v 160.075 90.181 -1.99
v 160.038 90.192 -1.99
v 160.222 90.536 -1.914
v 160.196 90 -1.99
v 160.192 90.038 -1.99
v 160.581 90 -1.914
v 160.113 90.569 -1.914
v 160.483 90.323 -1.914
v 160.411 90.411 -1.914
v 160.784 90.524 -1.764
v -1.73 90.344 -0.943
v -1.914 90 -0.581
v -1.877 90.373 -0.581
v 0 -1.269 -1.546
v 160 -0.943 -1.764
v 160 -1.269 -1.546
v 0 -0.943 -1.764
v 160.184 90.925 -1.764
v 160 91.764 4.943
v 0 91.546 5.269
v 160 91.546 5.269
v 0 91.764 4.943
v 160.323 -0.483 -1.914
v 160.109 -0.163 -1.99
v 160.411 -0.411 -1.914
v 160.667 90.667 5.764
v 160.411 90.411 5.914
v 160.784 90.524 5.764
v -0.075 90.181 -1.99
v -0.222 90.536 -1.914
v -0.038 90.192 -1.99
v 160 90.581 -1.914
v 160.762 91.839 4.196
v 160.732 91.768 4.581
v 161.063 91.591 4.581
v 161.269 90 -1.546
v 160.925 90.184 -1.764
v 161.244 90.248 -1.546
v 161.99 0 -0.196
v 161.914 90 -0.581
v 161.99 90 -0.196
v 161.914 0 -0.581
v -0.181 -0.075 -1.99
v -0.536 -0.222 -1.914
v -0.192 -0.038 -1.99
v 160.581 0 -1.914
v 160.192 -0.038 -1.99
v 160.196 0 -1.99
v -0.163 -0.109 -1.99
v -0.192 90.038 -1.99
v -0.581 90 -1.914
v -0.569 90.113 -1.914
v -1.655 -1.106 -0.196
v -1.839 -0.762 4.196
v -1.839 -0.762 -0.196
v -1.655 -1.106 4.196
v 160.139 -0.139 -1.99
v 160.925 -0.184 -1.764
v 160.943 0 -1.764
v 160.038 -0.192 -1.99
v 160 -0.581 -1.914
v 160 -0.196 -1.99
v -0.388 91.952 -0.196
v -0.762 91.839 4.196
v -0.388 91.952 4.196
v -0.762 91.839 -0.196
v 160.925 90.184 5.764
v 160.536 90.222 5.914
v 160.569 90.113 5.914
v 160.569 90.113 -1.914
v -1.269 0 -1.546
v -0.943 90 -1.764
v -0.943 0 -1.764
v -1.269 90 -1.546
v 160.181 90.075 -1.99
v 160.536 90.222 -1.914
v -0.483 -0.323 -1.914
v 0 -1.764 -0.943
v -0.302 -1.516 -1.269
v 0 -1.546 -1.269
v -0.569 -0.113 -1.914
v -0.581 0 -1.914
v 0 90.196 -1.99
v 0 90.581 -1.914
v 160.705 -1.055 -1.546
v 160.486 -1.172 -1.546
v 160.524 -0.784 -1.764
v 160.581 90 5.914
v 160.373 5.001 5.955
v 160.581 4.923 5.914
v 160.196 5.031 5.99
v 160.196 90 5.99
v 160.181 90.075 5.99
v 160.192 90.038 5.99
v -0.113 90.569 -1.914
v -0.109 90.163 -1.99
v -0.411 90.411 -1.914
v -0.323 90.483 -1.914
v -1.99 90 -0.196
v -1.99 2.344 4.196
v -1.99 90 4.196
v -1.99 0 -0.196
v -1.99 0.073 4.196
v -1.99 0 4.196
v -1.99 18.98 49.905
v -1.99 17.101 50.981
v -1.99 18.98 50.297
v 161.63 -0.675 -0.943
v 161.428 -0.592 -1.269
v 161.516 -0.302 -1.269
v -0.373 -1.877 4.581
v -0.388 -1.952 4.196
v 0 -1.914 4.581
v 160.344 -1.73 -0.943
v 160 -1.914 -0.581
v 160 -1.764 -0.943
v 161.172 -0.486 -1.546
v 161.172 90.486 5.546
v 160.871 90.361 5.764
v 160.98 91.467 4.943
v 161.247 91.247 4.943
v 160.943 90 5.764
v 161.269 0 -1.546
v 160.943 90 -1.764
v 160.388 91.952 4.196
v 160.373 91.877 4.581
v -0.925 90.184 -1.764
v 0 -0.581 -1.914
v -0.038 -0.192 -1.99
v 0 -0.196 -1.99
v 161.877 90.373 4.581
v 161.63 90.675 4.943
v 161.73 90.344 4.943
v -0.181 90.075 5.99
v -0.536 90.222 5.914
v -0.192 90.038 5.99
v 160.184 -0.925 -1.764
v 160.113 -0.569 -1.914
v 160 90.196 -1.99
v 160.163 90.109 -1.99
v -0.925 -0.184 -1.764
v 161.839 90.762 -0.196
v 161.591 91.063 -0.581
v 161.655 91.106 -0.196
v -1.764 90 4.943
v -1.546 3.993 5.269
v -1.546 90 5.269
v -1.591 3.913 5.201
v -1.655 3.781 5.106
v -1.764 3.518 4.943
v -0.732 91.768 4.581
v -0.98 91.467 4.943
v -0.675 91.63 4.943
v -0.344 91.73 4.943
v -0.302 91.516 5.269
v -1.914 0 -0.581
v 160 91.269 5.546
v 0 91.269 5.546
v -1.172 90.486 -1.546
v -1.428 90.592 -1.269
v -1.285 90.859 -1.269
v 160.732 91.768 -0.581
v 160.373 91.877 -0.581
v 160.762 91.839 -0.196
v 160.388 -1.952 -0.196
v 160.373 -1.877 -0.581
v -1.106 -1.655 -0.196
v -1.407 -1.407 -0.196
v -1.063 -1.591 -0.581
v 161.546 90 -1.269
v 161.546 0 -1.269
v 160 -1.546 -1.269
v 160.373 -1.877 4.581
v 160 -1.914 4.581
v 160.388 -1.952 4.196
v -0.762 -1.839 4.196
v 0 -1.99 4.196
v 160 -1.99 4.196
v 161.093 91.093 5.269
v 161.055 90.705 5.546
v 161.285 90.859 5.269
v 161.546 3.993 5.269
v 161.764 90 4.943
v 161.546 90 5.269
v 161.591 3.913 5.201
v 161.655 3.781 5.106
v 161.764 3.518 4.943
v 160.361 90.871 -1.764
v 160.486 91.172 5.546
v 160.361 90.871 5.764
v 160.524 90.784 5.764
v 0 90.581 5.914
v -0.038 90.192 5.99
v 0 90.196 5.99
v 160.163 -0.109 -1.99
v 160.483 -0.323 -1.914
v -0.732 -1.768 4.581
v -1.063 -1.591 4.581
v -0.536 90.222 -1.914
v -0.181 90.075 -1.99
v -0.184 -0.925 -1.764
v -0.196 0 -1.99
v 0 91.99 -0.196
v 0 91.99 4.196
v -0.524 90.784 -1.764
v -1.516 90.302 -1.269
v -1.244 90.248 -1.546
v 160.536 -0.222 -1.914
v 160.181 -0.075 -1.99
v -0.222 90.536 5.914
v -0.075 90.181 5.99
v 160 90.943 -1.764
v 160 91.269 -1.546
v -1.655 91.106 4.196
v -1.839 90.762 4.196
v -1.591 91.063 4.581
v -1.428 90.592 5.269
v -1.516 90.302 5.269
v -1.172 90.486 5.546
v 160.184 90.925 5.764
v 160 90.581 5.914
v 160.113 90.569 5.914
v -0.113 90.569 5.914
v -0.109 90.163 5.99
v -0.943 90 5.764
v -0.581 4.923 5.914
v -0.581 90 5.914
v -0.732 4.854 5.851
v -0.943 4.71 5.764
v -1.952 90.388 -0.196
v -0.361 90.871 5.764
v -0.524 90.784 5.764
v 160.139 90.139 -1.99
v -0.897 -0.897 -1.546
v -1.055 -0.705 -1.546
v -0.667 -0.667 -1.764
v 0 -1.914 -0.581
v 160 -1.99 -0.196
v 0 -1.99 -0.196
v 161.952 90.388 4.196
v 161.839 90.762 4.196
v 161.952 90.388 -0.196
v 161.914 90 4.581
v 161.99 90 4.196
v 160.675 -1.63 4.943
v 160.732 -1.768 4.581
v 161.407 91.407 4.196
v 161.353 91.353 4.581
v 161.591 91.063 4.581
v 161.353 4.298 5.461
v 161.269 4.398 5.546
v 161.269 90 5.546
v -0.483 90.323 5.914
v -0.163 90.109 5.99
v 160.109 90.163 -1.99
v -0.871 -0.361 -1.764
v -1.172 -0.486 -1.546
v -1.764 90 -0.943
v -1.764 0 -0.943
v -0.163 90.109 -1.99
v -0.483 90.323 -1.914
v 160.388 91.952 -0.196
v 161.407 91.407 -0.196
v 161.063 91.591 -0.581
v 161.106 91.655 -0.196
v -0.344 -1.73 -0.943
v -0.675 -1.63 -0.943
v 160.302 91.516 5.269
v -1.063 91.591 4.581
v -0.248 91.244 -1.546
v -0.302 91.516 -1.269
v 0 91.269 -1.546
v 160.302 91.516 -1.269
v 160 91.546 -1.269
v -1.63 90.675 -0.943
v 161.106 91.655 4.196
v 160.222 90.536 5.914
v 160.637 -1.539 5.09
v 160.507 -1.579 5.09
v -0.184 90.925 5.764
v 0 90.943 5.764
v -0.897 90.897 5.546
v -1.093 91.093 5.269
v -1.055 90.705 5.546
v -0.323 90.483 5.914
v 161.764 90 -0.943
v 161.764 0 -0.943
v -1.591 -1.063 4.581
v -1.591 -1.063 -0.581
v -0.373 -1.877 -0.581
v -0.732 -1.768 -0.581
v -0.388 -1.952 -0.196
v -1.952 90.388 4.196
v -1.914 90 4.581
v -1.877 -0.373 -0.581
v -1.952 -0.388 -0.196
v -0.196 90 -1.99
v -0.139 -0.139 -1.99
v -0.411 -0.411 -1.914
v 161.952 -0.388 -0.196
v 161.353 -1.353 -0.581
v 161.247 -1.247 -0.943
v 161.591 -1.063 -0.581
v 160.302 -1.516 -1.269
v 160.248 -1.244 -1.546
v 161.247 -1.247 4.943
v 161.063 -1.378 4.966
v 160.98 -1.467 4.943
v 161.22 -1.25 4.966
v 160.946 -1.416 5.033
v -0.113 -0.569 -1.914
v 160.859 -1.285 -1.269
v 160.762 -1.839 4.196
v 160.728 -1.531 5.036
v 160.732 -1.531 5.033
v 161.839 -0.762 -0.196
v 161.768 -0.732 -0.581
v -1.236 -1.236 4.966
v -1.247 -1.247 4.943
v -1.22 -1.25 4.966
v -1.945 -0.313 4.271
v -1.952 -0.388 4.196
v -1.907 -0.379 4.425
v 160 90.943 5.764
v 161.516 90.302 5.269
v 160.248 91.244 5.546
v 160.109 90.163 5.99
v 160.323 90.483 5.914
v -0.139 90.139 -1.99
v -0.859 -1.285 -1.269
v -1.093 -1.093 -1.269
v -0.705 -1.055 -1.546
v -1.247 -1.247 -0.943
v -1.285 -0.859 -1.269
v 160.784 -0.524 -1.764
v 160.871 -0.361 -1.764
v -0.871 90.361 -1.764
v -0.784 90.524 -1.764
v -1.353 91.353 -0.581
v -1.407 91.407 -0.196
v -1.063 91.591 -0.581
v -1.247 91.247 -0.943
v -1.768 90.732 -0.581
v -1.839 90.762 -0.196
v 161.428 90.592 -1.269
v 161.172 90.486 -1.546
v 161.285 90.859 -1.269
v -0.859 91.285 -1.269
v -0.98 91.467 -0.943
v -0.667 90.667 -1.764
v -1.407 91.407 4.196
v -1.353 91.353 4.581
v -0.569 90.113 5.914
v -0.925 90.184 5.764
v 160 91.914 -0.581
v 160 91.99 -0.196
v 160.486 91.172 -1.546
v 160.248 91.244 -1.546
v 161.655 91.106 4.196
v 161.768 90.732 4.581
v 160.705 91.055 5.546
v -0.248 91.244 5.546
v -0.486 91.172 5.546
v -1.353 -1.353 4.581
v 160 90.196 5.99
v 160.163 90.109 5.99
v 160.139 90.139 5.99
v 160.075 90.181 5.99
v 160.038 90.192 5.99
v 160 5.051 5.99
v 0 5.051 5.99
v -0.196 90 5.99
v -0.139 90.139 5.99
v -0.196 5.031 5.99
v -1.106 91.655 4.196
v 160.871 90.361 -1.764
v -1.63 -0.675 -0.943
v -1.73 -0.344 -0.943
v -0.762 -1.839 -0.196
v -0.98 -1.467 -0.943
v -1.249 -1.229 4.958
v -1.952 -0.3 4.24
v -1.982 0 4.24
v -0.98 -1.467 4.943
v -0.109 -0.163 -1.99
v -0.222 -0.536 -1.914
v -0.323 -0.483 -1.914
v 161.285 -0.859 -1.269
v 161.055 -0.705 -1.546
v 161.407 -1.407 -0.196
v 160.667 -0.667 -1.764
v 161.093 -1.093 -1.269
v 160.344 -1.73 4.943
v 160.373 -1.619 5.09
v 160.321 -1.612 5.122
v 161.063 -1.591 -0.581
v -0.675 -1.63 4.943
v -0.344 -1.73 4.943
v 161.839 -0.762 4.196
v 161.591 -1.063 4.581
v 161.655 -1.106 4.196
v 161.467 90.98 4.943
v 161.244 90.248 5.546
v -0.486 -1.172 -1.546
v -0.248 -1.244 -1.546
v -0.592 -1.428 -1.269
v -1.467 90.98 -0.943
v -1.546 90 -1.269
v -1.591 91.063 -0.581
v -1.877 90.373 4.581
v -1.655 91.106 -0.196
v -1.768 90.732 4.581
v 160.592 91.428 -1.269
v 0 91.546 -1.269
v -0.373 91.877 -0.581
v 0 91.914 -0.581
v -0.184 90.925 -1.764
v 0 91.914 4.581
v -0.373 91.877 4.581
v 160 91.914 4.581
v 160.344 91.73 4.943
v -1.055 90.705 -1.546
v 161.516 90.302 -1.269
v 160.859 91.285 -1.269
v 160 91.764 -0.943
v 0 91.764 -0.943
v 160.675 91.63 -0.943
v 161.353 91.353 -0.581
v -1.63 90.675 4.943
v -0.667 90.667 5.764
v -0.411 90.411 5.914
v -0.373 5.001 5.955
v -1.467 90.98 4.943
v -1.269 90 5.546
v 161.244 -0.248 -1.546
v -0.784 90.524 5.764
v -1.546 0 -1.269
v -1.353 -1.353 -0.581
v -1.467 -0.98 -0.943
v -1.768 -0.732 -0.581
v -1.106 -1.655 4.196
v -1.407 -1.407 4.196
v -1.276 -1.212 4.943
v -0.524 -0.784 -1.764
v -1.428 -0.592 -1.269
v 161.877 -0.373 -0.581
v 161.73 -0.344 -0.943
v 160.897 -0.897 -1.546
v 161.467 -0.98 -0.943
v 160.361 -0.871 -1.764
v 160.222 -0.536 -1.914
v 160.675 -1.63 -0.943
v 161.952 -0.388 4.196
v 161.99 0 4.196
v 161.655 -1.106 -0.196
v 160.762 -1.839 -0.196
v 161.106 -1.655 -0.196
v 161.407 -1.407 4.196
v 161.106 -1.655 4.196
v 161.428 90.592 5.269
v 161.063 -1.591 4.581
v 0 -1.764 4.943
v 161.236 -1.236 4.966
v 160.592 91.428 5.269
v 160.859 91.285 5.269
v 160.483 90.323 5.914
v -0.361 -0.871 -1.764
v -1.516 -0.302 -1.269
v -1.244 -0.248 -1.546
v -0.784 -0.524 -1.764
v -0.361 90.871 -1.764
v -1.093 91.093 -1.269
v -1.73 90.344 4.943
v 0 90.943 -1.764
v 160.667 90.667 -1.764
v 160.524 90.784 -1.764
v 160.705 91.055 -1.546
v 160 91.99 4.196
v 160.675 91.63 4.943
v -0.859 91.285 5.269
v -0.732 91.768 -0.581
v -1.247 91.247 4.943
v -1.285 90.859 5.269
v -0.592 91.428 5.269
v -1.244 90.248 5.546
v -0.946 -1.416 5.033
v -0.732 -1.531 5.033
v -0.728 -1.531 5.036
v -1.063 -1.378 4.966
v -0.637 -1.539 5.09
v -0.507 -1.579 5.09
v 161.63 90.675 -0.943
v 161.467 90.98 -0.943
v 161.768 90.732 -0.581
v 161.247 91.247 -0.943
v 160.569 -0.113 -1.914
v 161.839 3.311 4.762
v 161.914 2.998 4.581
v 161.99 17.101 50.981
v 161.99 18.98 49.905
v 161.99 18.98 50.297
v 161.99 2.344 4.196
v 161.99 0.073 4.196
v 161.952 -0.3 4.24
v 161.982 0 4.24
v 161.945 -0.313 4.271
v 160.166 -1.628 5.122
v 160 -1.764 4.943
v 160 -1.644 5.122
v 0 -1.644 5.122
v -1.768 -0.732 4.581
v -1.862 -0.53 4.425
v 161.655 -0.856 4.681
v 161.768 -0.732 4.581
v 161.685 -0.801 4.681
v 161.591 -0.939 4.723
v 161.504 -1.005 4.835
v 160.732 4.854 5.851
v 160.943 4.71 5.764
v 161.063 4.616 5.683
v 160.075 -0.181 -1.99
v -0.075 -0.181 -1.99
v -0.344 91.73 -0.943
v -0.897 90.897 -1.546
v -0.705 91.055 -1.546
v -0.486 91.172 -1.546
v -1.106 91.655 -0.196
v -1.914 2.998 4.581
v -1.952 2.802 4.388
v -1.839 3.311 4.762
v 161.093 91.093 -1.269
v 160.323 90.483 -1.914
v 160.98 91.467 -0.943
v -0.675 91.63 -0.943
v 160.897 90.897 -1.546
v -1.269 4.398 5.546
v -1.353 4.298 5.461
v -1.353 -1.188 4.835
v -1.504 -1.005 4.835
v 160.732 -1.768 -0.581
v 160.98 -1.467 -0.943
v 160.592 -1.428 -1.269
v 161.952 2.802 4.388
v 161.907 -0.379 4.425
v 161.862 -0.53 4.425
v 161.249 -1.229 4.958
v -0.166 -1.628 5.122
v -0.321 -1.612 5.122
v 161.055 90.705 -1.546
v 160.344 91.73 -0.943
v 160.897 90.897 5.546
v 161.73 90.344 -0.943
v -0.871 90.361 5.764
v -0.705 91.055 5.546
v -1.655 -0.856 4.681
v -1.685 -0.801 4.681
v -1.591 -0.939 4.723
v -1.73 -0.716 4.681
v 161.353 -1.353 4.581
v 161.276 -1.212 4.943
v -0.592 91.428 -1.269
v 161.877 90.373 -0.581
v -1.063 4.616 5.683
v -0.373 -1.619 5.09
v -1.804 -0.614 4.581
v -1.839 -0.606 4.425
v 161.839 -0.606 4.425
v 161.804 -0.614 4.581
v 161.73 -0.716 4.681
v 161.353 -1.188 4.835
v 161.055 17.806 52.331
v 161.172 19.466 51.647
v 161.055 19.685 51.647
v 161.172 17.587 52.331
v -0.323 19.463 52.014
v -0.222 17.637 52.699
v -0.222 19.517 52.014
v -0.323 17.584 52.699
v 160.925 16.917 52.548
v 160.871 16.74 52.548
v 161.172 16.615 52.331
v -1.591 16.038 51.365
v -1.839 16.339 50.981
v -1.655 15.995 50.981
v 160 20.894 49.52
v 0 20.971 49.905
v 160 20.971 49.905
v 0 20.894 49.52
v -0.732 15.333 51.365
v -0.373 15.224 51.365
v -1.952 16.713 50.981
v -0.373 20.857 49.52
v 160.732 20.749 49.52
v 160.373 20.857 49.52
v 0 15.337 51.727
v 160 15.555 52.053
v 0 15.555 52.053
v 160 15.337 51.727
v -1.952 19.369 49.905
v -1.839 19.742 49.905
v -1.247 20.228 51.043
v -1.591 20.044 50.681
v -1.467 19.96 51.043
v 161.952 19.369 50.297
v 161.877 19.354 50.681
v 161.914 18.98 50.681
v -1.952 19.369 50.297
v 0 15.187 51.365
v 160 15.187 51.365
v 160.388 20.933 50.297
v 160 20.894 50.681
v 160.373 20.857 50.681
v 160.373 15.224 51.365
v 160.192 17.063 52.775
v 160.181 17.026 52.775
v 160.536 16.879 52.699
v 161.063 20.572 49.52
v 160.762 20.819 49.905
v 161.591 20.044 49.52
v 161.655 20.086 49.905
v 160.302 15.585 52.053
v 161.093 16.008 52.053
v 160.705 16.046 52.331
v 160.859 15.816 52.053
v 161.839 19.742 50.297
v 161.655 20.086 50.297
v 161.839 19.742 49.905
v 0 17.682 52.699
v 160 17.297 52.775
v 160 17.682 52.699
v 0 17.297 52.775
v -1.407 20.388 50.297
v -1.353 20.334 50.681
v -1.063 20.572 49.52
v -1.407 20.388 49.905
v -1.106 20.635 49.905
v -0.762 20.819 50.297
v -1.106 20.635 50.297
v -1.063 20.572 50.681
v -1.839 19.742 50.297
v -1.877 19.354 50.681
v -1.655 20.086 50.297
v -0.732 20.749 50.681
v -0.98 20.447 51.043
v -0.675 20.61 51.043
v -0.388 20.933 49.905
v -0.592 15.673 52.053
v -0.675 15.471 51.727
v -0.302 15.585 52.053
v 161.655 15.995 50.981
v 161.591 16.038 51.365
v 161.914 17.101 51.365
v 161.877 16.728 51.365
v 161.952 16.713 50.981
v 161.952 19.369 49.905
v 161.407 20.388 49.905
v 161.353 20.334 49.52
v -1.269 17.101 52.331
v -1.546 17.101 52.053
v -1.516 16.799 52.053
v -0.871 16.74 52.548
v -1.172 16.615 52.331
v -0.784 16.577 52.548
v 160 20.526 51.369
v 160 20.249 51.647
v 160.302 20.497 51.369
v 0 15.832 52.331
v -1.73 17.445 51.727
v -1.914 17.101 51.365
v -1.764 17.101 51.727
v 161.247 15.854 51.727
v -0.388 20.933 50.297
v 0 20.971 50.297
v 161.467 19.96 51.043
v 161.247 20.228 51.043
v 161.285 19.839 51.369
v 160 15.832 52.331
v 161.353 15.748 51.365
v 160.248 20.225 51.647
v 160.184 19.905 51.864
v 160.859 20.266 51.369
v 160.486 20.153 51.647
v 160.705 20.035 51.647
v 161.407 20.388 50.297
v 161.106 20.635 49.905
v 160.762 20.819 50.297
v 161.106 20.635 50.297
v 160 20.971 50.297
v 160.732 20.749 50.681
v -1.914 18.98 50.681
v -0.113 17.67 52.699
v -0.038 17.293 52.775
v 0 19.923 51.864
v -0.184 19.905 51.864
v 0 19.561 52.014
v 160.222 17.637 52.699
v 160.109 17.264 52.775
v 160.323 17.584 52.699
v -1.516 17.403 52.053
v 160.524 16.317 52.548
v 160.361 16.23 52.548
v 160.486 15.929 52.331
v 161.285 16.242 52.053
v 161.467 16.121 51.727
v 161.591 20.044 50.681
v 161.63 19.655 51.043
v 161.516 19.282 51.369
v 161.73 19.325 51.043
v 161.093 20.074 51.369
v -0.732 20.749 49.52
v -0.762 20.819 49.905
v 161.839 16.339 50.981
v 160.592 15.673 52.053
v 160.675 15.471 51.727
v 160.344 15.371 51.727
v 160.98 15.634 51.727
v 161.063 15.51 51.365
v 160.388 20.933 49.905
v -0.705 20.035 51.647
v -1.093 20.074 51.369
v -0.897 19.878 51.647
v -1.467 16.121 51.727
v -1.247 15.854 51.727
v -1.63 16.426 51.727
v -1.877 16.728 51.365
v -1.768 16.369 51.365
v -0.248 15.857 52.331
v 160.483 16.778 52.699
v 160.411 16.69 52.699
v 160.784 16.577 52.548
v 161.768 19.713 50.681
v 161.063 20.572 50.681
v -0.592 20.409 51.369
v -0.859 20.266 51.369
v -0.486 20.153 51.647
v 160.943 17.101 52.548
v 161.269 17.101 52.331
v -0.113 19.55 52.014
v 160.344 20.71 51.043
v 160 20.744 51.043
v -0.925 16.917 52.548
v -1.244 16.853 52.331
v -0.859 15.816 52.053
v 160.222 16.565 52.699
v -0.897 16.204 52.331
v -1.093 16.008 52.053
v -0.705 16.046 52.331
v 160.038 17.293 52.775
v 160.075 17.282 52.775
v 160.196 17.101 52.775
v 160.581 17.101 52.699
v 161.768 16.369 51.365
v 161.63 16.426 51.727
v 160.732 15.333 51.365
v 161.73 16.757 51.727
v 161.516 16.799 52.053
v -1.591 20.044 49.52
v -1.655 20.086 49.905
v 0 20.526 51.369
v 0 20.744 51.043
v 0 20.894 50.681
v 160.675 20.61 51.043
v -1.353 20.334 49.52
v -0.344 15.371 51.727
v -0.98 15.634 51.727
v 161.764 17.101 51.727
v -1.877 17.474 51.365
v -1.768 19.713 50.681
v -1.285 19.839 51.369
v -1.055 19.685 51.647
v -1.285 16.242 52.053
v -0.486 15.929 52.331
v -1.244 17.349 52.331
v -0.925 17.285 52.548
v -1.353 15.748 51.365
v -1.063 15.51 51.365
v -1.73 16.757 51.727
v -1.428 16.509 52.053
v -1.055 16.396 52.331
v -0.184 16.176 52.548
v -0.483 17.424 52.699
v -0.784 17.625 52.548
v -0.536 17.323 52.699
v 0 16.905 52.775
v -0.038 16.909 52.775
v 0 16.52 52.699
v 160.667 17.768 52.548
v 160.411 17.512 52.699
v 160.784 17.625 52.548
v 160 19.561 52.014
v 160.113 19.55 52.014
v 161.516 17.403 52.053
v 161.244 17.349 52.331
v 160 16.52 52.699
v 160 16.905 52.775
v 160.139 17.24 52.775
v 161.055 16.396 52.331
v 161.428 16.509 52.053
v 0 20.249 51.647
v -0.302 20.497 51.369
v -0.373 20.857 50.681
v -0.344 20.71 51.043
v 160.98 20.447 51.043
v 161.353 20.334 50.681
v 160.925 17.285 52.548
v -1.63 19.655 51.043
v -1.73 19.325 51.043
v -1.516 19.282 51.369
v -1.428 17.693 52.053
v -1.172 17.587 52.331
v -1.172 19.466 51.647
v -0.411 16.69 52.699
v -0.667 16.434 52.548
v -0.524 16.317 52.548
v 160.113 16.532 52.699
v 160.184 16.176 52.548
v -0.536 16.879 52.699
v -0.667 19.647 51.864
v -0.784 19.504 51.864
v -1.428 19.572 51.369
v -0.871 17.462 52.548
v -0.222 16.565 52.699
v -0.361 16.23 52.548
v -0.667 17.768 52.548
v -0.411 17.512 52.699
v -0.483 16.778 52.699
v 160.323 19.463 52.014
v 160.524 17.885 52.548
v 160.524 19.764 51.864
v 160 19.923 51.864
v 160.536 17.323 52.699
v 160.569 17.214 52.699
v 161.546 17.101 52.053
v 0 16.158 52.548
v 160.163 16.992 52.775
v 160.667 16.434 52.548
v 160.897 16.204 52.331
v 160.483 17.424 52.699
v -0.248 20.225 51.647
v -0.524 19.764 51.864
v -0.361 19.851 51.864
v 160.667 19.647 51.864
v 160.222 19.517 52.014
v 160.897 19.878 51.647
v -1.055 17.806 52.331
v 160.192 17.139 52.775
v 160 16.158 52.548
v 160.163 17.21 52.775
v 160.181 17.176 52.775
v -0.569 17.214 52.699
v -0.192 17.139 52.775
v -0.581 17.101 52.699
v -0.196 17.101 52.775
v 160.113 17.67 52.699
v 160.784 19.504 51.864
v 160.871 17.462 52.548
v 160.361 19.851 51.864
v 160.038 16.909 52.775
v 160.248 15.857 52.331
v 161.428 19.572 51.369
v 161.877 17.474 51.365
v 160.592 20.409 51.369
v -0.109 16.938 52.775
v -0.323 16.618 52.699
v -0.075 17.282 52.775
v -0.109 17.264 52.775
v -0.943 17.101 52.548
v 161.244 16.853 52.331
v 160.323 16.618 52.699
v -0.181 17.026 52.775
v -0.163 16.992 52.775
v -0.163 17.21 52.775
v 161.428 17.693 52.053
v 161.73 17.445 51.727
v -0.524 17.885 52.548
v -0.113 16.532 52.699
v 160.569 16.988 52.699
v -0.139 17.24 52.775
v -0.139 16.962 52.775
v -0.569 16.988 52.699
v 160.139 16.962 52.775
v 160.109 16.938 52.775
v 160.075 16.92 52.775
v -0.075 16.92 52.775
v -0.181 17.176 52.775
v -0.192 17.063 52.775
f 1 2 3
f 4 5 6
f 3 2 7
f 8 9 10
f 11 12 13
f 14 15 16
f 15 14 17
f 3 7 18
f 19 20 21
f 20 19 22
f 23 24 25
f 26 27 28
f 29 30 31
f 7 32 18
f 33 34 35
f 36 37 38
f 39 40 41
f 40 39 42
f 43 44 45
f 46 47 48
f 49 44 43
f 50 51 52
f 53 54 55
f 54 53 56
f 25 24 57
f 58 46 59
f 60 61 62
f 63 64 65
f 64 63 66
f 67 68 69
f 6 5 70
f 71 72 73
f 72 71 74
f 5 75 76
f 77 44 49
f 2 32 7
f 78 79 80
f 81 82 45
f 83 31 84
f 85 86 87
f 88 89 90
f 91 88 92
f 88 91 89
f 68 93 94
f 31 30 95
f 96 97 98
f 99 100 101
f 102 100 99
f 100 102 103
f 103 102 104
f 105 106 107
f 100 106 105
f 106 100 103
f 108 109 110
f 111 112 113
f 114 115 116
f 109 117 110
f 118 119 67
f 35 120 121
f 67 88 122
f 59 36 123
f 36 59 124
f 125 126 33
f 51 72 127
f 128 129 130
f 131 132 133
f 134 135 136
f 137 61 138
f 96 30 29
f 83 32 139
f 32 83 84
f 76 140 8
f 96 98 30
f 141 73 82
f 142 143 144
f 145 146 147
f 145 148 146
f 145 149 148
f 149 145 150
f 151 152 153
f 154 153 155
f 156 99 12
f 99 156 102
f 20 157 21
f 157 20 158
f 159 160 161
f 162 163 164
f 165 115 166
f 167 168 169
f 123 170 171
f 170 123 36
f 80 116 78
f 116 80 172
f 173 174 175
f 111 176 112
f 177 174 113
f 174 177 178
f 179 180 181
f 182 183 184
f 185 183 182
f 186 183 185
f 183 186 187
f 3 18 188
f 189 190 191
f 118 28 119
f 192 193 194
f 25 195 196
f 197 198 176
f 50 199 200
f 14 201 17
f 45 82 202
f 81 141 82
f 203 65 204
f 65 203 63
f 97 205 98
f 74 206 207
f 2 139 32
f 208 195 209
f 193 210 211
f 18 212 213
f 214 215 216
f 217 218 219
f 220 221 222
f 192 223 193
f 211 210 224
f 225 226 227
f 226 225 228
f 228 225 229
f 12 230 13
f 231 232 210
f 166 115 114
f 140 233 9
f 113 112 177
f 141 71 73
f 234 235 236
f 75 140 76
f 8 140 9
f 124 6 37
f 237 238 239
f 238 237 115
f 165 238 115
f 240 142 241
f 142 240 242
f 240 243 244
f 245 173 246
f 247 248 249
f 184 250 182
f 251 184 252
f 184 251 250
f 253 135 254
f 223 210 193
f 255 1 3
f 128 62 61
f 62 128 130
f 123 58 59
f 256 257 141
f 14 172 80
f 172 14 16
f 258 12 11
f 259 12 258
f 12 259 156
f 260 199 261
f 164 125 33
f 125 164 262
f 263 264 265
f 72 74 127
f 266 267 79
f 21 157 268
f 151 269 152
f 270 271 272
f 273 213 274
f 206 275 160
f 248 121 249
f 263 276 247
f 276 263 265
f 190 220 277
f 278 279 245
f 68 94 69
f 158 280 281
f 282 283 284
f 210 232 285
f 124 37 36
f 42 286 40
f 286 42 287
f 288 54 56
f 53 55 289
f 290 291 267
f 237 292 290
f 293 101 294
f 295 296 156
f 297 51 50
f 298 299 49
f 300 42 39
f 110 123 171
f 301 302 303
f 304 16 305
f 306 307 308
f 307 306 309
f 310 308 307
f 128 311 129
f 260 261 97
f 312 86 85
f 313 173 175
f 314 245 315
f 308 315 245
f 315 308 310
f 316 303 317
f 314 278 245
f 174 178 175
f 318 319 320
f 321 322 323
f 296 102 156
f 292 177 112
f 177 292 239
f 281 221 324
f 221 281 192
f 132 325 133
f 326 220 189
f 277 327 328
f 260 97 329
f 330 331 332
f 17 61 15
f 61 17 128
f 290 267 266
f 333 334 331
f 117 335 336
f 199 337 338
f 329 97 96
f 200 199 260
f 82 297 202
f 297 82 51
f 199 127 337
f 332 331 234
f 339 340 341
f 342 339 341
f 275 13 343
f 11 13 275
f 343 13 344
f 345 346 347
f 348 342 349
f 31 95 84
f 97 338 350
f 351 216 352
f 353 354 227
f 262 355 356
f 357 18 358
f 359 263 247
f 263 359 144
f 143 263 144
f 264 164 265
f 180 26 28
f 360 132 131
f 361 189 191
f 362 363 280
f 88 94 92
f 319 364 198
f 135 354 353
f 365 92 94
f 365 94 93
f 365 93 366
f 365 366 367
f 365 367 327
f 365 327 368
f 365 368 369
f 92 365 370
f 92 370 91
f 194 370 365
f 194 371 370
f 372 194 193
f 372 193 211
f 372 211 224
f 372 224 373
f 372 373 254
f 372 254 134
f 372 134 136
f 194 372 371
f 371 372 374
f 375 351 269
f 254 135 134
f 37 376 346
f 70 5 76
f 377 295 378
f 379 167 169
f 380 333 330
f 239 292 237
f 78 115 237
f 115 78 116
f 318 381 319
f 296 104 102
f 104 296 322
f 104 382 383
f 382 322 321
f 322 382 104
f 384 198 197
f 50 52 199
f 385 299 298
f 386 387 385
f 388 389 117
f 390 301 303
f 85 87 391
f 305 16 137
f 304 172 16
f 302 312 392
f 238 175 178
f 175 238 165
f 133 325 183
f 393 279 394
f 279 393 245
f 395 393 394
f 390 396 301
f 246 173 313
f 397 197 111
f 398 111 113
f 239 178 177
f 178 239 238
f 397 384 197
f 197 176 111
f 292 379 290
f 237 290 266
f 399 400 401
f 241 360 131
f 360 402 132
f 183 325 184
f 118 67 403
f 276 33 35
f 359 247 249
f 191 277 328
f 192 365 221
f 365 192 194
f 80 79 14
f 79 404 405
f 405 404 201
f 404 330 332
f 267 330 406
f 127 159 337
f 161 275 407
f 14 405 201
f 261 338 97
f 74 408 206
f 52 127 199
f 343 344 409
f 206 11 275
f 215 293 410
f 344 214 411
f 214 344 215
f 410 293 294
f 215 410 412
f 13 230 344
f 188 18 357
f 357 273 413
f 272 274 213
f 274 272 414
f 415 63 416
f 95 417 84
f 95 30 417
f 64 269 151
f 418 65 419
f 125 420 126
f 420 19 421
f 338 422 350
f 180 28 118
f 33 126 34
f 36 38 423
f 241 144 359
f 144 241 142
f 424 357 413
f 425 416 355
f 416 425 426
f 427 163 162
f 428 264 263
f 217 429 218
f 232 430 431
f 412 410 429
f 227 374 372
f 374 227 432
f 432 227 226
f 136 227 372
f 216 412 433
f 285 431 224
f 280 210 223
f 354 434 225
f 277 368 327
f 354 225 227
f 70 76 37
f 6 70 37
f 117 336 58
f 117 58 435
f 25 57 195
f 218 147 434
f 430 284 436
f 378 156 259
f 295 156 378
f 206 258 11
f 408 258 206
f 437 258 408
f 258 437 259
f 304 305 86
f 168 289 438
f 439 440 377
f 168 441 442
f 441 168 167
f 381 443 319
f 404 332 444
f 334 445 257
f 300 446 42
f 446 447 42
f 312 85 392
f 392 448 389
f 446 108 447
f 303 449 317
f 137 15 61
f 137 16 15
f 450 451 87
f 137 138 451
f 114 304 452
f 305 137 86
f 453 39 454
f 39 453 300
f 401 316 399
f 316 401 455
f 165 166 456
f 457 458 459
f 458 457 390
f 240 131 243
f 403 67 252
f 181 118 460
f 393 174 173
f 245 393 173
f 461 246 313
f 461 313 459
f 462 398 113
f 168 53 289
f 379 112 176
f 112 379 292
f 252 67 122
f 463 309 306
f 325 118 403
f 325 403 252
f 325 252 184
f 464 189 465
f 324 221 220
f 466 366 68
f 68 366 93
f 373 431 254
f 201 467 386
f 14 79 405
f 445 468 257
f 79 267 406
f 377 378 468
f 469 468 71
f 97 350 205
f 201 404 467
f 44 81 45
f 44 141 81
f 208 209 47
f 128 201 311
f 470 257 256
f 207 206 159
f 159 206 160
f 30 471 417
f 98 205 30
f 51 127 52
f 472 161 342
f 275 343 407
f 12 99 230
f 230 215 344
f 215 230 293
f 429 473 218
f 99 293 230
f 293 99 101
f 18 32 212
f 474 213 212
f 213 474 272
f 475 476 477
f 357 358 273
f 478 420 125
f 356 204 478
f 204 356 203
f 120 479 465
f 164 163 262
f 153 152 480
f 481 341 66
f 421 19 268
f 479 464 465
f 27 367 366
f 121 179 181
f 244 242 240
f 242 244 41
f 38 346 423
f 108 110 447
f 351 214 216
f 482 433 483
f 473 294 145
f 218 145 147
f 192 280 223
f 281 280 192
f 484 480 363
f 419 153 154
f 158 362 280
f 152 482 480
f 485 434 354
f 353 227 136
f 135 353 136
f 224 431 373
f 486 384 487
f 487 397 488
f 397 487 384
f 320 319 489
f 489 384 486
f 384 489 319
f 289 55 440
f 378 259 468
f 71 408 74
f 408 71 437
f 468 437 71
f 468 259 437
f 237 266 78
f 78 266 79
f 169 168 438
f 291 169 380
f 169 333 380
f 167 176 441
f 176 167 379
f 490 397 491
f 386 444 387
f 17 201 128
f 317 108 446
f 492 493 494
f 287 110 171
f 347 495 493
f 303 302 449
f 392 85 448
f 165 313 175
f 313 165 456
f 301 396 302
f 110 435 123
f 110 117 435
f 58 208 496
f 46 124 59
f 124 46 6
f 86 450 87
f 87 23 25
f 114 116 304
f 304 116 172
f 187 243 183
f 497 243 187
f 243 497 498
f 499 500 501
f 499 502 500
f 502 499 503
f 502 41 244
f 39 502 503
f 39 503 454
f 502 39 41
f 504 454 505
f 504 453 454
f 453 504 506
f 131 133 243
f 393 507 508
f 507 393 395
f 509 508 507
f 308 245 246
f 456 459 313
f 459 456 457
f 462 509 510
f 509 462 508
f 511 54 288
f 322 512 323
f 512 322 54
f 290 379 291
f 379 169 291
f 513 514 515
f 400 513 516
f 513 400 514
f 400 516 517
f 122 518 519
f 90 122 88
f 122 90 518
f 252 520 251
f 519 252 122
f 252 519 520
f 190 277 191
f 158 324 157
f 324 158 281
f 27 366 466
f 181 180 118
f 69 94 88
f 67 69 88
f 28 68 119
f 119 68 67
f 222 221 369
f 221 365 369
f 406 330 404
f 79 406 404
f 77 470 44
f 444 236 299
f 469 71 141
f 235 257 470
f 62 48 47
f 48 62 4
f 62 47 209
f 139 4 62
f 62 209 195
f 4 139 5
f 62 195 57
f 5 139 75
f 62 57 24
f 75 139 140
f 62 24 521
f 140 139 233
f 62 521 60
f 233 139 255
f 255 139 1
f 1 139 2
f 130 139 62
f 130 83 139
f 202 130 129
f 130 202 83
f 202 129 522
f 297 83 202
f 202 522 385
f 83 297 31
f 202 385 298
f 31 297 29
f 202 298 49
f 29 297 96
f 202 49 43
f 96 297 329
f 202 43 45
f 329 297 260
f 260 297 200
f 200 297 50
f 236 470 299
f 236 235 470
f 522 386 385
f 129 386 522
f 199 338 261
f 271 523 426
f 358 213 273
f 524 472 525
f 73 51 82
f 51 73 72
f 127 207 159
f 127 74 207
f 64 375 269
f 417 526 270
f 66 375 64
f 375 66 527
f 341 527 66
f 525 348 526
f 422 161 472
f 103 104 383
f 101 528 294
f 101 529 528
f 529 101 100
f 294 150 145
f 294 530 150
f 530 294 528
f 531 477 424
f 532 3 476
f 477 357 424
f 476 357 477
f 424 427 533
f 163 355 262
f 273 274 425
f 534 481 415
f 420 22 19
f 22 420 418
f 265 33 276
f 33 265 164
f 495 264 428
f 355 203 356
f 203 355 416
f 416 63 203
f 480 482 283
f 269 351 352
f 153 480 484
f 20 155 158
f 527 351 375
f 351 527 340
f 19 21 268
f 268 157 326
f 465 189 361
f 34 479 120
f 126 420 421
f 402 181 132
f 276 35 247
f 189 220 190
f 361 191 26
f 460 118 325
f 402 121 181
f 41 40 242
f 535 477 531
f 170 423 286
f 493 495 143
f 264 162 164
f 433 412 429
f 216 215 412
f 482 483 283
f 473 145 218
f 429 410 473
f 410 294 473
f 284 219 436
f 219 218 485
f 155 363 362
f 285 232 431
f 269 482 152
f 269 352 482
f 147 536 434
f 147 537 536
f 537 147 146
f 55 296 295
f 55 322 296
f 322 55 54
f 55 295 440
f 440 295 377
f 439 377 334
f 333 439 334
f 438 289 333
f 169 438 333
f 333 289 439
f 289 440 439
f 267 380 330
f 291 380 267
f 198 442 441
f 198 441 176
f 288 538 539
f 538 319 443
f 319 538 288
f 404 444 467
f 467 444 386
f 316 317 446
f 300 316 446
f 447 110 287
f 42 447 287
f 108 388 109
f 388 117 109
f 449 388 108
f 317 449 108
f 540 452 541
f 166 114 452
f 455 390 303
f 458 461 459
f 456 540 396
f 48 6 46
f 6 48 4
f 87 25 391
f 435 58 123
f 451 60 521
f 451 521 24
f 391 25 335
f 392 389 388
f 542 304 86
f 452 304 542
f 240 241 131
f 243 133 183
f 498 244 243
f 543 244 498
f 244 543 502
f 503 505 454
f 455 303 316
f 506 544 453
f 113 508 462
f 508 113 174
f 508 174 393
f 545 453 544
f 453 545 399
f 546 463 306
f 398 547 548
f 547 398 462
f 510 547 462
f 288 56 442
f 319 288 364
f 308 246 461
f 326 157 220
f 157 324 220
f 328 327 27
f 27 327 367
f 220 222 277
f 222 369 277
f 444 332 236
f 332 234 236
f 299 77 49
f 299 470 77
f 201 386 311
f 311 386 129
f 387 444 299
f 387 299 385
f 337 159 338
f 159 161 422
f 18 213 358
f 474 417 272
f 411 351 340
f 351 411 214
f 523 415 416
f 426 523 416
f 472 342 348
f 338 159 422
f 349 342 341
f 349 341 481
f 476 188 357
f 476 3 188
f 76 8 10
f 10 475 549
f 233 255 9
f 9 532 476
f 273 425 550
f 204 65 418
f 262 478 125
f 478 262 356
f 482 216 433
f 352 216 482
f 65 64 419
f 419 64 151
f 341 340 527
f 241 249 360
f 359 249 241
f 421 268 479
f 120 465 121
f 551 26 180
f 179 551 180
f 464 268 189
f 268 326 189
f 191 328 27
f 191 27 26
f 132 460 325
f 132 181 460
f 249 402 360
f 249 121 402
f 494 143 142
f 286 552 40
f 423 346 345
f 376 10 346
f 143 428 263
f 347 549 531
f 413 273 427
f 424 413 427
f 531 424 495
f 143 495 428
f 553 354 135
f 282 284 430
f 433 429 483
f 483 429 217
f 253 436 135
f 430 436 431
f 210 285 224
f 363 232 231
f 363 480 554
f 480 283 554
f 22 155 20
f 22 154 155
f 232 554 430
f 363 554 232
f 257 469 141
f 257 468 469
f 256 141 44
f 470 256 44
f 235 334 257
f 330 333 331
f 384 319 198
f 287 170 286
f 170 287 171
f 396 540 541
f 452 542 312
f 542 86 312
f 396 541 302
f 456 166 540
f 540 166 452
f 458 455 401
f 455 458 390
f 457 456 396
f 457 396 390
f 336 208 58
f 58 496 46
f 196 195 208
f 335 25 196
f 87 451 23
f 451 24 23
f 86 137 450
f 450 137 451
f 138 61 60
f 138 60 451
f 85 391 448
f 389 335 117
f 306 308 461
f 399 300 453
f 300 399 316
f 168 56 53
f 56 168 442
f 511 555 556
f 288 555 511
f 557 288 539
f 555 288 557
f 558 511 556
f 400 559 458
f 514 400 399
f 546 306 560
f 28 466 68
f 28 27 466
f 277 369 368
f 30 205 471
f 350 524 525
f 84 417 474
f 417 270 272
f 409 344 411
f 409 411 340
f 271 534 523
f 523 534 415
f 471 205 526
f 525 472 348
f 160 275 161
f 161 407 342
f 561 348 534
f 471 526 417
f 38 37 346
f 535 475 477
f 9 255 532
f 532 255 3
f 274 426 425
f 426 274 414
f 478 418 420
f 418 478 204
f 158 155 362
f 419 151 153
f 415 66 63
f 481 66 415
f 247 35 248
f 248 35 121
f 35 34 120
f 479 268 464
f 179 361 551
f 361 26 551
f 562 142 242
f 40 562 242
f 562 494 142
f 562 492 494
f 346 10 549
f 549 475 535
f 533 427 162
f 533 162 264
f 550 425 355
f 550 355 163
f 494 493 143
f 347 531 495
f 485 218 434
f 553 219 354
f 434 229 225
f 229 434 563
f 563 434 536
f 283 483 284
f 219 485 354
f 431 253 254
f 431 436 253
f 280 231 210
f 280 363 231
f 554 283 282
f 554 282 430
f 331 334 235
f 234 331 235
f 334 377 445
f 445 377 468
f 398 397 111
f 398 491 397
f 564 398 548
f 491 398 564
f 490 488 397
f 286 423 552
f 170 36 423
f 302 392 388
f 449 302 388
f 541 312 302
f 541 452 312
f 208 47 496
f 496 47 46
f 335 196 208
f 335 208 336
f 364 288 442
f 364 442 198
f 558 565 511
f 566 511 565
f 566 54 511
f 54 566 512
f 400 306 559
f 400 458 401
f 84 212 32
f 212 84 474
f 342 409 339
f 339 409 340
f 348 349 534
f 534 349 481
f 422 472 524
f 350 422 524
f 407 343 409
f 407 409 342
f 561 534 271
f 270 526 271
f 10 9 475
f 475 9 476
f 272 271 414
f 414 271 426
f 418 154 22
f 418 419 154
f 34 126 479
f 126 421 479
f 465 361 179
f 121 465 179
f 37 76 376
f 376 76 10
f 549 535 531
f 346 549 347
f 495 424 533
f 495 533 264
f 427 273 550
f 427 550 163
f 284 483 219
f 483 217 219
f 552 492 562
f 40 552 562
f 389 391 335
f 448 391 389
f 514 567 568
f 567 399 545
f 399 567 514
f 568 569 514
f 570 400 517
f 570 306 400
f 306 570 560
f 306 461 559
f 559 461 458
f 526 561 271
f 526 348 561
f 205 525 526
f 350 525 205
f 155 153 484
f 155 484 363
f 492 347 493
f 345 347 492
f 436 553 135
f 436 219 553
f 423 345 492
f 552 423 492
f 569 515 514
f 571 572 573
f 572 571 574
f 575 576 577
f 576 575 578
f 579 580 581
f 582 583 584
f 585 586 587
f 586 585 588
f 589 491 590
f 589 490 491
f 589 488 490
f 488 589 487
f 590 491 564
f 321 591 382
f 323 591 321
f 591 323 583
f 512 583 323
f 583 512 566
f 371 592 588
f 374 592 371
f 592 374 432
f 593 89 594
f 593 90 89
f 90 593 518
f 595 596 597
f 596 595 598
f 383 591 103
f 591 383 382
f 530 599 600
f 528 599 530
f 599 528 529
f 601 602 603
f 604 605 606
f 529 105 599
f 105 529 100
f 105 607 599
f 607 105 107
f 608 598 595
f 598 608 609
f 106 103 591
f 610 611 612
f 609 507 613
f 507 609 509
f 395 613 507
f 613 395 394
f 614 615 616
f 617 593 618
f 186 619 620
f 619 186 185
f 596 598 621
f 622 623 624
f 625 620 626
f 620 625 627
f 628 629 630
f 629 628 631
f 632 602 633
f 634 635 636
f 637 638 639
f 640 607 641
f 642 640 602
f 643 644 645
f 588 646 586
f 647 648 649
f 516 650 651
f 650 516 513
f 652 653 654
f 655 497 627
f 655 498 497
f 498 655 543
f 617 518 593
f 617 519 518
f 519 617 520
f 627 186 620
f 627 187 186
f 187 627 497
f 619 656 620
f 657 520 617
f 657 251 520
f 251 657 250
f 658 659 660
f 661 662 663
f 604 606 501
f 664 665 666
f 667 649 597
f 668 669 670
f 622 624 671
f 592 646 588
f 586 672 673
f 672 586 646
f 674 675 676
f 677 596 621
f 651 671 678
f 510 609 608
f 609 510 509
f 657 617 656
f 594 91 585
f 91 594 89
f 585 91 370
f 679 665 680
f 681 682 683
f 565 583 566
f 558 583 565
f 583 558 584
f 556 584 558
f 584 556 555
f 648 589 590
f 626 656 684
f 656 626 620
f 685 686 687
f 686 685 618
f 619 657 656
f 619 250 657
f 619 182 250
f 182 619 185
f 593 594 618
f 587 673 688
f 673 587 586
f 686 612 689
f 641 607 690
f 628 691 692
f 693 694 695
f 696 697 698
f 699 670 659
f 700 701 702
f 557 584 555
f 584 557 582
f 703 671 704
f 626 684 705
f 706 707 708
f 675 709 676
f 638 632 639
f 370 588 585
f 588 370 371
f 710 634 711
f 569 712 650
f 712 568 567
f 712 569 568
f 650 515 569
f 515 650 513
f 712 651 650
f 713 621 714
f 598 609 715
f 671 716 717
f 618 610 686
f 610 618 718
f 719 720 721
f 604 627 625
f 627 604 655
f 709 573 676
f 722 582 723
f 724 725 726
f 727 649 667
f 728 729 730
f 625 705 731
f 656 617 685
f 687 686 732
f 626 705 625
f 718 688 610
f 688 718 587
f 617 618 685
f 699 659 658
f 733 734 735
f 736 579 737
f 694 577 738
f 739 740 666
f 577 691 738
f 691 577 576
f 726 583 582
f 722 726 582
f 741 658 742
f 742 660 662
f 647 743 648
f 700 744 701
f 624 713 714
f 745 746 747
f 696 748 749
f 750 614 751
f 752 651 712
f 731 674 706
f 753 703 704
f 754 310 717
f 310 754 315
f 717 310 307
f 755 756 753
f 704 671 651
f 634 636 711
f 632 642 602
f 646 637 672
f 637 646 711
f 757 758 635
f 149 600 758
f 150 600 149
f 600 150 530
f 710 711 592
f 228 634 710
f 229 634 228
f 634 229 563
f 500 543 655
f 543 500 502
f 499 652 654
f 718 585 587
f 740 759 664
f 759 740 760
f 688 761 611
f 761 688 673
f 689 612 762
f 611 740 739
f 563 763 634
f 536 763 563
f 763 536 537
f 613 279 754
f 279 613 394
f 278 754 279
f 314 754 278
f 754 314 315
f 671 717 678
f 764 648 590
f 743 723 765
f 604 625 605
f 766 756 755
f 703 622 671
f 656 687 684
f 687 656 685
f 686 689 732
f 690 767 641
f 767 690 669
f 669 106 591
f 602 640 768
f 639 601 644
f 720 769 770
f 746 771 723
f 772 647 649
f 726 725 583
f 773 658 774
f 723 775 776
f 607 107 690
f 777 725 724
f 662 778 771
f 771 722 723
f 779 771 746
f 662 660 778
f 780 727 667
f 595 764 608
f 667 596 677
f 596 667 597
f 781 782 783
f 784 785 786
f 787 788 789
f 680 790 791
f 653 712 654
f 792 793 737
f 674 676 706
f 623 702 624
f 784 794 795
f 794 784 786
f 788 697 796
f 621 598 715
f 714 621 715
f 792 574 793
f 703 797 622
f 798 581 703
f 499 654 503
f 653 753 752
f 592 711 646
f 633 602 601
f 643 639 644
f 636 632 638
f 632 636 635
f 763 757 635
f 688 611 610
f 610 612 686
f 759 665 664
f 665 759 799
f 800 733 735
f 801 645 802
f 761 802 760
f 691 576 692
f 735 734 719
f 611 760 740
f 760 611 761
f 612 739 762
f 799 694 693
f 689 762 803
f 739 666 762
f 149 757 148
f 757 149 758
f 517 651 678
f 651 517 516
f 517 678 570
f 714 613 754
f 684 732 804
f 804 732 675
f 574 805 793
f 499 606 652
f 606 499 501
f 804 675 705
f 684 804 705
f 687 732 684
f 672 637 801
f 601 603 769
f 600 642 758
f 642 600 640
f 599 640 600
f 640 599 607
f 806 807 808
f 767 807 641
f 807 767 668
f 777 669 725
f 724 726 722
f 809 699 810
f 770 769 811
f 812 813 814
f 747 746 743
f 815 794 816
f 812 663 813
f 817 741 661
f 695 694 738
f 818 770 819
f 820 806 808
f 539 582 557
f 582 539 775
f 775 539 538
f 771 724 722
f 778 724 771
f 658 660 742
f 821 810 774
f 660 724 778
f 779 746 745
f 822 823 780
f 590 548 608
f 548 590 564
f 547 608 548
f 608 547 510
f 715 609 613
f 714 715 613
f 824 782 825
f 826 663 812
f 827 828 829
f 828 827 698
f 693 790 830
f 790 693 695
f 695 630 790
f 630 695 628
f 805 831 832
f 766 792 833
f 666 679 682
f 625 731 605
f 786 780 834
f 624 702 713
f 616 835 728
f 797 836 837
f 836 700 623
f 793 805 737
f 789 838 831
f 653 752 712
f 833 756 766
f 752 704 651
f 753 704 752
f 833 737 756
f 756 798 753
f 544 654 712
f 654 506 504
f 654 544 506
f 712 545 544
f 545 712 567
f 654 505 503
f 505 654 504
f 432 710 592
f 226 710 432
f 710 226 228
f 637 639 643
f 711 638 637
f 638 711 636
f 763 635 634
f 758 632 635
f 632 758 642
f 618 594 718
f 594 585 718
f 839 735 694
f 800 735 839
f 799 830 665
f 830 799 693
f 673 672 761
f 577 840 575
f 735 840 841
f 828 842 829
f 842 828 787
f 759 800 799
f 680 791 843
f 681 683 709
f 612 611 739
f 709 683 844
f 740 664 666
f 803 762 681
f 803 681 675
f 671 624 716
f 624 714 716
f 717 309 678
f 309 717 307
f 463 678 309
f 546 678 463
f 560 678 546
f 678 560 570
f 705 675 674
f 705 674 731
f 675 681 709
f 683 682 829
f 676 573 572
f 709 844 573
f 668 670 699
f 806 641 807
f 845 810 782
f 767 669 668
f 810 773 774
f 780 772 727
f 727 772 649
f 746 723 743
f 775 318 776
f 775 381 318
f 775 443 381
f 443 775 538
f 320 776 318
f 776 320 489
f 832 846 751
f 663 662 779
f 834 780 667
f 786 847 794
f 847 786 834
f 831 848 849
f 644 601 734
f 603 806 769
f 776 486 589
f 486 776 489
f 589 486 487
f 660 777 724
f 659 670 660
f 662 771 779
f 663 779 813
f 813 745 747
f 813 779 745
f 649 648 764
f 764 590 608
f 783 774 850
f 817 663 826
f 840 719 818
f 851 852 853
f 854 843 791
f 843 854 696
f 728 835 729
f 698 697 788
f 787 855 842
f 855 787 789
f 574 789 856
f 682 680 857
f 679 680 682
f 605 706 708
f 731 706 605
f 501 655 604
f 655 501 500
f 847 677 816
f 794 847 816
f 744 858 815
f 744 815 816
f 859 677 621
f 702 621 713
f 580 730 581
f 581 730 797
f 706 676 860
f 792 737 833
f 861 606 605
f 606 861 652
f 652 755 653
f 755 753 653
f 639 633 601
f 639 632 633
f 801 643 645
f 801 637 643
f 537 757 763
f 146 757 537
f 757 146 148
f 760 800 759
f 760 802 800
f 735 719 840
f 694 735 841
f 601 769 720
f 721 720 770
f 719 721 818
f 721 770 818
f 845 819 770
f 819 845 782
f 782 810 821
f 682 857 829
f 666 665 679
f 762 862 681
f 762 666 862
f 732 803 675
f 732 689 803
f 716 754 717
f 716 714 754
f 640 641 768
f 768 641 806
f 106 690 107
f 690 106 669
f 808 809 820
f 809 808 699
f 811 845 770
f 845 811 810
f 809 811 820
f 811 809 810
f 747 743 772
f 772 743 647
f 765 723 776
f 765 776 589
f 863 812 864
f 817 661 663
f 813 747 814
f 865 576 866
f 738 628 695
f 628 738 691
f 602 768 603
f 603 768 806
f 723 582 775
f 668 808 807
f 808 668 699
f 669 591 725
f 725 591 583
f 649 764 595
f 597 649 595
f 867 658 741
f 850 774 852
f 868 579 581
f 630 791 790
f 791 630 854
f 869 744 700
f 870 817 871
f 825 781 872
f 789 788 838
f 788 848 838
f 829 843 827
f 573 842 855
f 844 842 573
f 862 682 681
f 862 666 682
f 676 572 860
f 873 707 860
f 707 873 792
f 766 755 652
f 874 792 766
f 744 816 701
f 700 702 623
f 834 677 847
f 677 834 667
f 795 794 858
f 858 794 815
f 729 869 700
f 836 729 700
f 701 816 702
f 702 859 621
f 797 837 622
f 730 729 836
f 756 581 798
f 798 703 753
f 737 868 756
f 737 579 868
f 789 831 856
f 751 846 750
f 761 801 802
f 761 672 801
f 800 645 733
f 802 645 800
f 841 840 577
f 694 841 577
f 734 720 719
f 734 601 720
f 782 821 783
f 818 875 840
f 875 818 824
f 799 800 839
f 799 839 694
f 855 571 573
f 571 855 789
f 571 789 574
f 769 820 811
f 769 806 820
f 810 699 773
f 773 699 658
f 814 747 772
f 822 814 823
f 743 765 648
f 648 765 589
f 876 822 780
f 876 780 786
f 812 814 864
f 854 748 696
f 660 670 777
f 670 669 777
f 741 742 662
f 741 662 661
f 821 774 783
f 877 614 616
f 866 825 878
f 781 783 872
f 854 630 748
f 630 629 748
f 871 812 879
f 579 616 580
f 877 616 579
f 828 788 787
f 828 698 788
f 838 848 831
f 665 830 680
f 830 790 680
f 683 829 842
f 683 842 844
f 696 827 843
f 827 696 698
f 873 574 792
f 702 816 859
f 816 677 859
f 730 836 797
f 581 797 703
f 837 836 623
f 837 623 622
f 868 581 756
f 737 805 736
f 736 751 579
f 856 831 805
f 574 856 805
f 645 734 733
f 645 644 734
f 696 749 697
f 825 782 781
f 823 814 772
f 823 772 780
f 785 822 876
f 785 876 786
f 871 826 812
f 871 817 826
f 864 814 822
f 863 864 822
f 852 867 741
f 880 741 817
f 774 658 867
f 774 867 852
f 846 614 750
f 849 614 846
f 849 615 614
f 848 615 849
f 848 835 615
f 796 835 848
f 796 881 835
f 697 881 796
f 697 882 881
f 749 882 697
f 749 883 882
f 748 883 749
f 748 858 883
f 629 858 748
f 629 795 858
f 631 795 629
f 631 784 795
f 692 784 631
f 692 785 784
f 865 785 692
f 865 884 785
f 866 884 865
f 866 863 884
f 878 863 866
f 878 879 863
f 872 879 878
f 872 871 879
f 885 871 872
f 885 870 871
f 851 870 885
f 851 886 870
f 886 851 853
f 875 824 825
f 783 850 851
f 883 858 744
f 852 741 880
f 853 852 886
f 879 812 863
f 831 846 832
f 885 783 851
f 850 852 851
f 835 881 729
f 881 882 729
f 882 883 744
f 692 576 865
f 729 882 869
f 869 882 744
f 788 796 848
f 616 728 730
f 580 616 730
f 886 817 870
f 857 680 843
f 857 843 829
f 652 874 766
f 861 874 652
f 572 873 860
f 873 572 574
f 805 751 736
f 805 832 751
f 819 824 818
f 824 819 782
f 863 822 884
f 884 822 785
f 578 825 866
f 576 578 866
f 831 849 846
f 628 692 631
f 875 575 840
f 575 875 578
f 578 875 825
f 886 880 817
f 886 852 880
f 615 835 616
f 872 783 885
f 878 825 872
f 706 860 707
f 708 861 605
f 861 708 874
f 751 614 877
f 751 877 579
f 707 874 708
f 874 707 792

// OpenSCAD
depth  =  90;
width  = 160;
height =  50;

/*
module base() {
    difference() {
        union() {
            cube([width, depth, 4]);
            color("red")
                translate([0, 0, 3.8])
                rotate([-20, 0, 0])
                cube([width, 2, height]);
        }
        translate([20, 20, -1])
            cube([width-40, depth-40, 10]);
        for(i = [20:40:140]) {
            translate([i, 20, 15])
                rotate([40, 0, 0])
                cylinder(60, d=30);
        }
    }
}
*/

module base() {
    union() {
        cube([width, depth, 4]);
        color("red")
            translate([0, 0, 3.8])
            rotate([-20, 0, 0])
            cube([width, 2, height]);
    }
}

minkowski() {
    base();
    sphere(d=4, $fn=32);
}
